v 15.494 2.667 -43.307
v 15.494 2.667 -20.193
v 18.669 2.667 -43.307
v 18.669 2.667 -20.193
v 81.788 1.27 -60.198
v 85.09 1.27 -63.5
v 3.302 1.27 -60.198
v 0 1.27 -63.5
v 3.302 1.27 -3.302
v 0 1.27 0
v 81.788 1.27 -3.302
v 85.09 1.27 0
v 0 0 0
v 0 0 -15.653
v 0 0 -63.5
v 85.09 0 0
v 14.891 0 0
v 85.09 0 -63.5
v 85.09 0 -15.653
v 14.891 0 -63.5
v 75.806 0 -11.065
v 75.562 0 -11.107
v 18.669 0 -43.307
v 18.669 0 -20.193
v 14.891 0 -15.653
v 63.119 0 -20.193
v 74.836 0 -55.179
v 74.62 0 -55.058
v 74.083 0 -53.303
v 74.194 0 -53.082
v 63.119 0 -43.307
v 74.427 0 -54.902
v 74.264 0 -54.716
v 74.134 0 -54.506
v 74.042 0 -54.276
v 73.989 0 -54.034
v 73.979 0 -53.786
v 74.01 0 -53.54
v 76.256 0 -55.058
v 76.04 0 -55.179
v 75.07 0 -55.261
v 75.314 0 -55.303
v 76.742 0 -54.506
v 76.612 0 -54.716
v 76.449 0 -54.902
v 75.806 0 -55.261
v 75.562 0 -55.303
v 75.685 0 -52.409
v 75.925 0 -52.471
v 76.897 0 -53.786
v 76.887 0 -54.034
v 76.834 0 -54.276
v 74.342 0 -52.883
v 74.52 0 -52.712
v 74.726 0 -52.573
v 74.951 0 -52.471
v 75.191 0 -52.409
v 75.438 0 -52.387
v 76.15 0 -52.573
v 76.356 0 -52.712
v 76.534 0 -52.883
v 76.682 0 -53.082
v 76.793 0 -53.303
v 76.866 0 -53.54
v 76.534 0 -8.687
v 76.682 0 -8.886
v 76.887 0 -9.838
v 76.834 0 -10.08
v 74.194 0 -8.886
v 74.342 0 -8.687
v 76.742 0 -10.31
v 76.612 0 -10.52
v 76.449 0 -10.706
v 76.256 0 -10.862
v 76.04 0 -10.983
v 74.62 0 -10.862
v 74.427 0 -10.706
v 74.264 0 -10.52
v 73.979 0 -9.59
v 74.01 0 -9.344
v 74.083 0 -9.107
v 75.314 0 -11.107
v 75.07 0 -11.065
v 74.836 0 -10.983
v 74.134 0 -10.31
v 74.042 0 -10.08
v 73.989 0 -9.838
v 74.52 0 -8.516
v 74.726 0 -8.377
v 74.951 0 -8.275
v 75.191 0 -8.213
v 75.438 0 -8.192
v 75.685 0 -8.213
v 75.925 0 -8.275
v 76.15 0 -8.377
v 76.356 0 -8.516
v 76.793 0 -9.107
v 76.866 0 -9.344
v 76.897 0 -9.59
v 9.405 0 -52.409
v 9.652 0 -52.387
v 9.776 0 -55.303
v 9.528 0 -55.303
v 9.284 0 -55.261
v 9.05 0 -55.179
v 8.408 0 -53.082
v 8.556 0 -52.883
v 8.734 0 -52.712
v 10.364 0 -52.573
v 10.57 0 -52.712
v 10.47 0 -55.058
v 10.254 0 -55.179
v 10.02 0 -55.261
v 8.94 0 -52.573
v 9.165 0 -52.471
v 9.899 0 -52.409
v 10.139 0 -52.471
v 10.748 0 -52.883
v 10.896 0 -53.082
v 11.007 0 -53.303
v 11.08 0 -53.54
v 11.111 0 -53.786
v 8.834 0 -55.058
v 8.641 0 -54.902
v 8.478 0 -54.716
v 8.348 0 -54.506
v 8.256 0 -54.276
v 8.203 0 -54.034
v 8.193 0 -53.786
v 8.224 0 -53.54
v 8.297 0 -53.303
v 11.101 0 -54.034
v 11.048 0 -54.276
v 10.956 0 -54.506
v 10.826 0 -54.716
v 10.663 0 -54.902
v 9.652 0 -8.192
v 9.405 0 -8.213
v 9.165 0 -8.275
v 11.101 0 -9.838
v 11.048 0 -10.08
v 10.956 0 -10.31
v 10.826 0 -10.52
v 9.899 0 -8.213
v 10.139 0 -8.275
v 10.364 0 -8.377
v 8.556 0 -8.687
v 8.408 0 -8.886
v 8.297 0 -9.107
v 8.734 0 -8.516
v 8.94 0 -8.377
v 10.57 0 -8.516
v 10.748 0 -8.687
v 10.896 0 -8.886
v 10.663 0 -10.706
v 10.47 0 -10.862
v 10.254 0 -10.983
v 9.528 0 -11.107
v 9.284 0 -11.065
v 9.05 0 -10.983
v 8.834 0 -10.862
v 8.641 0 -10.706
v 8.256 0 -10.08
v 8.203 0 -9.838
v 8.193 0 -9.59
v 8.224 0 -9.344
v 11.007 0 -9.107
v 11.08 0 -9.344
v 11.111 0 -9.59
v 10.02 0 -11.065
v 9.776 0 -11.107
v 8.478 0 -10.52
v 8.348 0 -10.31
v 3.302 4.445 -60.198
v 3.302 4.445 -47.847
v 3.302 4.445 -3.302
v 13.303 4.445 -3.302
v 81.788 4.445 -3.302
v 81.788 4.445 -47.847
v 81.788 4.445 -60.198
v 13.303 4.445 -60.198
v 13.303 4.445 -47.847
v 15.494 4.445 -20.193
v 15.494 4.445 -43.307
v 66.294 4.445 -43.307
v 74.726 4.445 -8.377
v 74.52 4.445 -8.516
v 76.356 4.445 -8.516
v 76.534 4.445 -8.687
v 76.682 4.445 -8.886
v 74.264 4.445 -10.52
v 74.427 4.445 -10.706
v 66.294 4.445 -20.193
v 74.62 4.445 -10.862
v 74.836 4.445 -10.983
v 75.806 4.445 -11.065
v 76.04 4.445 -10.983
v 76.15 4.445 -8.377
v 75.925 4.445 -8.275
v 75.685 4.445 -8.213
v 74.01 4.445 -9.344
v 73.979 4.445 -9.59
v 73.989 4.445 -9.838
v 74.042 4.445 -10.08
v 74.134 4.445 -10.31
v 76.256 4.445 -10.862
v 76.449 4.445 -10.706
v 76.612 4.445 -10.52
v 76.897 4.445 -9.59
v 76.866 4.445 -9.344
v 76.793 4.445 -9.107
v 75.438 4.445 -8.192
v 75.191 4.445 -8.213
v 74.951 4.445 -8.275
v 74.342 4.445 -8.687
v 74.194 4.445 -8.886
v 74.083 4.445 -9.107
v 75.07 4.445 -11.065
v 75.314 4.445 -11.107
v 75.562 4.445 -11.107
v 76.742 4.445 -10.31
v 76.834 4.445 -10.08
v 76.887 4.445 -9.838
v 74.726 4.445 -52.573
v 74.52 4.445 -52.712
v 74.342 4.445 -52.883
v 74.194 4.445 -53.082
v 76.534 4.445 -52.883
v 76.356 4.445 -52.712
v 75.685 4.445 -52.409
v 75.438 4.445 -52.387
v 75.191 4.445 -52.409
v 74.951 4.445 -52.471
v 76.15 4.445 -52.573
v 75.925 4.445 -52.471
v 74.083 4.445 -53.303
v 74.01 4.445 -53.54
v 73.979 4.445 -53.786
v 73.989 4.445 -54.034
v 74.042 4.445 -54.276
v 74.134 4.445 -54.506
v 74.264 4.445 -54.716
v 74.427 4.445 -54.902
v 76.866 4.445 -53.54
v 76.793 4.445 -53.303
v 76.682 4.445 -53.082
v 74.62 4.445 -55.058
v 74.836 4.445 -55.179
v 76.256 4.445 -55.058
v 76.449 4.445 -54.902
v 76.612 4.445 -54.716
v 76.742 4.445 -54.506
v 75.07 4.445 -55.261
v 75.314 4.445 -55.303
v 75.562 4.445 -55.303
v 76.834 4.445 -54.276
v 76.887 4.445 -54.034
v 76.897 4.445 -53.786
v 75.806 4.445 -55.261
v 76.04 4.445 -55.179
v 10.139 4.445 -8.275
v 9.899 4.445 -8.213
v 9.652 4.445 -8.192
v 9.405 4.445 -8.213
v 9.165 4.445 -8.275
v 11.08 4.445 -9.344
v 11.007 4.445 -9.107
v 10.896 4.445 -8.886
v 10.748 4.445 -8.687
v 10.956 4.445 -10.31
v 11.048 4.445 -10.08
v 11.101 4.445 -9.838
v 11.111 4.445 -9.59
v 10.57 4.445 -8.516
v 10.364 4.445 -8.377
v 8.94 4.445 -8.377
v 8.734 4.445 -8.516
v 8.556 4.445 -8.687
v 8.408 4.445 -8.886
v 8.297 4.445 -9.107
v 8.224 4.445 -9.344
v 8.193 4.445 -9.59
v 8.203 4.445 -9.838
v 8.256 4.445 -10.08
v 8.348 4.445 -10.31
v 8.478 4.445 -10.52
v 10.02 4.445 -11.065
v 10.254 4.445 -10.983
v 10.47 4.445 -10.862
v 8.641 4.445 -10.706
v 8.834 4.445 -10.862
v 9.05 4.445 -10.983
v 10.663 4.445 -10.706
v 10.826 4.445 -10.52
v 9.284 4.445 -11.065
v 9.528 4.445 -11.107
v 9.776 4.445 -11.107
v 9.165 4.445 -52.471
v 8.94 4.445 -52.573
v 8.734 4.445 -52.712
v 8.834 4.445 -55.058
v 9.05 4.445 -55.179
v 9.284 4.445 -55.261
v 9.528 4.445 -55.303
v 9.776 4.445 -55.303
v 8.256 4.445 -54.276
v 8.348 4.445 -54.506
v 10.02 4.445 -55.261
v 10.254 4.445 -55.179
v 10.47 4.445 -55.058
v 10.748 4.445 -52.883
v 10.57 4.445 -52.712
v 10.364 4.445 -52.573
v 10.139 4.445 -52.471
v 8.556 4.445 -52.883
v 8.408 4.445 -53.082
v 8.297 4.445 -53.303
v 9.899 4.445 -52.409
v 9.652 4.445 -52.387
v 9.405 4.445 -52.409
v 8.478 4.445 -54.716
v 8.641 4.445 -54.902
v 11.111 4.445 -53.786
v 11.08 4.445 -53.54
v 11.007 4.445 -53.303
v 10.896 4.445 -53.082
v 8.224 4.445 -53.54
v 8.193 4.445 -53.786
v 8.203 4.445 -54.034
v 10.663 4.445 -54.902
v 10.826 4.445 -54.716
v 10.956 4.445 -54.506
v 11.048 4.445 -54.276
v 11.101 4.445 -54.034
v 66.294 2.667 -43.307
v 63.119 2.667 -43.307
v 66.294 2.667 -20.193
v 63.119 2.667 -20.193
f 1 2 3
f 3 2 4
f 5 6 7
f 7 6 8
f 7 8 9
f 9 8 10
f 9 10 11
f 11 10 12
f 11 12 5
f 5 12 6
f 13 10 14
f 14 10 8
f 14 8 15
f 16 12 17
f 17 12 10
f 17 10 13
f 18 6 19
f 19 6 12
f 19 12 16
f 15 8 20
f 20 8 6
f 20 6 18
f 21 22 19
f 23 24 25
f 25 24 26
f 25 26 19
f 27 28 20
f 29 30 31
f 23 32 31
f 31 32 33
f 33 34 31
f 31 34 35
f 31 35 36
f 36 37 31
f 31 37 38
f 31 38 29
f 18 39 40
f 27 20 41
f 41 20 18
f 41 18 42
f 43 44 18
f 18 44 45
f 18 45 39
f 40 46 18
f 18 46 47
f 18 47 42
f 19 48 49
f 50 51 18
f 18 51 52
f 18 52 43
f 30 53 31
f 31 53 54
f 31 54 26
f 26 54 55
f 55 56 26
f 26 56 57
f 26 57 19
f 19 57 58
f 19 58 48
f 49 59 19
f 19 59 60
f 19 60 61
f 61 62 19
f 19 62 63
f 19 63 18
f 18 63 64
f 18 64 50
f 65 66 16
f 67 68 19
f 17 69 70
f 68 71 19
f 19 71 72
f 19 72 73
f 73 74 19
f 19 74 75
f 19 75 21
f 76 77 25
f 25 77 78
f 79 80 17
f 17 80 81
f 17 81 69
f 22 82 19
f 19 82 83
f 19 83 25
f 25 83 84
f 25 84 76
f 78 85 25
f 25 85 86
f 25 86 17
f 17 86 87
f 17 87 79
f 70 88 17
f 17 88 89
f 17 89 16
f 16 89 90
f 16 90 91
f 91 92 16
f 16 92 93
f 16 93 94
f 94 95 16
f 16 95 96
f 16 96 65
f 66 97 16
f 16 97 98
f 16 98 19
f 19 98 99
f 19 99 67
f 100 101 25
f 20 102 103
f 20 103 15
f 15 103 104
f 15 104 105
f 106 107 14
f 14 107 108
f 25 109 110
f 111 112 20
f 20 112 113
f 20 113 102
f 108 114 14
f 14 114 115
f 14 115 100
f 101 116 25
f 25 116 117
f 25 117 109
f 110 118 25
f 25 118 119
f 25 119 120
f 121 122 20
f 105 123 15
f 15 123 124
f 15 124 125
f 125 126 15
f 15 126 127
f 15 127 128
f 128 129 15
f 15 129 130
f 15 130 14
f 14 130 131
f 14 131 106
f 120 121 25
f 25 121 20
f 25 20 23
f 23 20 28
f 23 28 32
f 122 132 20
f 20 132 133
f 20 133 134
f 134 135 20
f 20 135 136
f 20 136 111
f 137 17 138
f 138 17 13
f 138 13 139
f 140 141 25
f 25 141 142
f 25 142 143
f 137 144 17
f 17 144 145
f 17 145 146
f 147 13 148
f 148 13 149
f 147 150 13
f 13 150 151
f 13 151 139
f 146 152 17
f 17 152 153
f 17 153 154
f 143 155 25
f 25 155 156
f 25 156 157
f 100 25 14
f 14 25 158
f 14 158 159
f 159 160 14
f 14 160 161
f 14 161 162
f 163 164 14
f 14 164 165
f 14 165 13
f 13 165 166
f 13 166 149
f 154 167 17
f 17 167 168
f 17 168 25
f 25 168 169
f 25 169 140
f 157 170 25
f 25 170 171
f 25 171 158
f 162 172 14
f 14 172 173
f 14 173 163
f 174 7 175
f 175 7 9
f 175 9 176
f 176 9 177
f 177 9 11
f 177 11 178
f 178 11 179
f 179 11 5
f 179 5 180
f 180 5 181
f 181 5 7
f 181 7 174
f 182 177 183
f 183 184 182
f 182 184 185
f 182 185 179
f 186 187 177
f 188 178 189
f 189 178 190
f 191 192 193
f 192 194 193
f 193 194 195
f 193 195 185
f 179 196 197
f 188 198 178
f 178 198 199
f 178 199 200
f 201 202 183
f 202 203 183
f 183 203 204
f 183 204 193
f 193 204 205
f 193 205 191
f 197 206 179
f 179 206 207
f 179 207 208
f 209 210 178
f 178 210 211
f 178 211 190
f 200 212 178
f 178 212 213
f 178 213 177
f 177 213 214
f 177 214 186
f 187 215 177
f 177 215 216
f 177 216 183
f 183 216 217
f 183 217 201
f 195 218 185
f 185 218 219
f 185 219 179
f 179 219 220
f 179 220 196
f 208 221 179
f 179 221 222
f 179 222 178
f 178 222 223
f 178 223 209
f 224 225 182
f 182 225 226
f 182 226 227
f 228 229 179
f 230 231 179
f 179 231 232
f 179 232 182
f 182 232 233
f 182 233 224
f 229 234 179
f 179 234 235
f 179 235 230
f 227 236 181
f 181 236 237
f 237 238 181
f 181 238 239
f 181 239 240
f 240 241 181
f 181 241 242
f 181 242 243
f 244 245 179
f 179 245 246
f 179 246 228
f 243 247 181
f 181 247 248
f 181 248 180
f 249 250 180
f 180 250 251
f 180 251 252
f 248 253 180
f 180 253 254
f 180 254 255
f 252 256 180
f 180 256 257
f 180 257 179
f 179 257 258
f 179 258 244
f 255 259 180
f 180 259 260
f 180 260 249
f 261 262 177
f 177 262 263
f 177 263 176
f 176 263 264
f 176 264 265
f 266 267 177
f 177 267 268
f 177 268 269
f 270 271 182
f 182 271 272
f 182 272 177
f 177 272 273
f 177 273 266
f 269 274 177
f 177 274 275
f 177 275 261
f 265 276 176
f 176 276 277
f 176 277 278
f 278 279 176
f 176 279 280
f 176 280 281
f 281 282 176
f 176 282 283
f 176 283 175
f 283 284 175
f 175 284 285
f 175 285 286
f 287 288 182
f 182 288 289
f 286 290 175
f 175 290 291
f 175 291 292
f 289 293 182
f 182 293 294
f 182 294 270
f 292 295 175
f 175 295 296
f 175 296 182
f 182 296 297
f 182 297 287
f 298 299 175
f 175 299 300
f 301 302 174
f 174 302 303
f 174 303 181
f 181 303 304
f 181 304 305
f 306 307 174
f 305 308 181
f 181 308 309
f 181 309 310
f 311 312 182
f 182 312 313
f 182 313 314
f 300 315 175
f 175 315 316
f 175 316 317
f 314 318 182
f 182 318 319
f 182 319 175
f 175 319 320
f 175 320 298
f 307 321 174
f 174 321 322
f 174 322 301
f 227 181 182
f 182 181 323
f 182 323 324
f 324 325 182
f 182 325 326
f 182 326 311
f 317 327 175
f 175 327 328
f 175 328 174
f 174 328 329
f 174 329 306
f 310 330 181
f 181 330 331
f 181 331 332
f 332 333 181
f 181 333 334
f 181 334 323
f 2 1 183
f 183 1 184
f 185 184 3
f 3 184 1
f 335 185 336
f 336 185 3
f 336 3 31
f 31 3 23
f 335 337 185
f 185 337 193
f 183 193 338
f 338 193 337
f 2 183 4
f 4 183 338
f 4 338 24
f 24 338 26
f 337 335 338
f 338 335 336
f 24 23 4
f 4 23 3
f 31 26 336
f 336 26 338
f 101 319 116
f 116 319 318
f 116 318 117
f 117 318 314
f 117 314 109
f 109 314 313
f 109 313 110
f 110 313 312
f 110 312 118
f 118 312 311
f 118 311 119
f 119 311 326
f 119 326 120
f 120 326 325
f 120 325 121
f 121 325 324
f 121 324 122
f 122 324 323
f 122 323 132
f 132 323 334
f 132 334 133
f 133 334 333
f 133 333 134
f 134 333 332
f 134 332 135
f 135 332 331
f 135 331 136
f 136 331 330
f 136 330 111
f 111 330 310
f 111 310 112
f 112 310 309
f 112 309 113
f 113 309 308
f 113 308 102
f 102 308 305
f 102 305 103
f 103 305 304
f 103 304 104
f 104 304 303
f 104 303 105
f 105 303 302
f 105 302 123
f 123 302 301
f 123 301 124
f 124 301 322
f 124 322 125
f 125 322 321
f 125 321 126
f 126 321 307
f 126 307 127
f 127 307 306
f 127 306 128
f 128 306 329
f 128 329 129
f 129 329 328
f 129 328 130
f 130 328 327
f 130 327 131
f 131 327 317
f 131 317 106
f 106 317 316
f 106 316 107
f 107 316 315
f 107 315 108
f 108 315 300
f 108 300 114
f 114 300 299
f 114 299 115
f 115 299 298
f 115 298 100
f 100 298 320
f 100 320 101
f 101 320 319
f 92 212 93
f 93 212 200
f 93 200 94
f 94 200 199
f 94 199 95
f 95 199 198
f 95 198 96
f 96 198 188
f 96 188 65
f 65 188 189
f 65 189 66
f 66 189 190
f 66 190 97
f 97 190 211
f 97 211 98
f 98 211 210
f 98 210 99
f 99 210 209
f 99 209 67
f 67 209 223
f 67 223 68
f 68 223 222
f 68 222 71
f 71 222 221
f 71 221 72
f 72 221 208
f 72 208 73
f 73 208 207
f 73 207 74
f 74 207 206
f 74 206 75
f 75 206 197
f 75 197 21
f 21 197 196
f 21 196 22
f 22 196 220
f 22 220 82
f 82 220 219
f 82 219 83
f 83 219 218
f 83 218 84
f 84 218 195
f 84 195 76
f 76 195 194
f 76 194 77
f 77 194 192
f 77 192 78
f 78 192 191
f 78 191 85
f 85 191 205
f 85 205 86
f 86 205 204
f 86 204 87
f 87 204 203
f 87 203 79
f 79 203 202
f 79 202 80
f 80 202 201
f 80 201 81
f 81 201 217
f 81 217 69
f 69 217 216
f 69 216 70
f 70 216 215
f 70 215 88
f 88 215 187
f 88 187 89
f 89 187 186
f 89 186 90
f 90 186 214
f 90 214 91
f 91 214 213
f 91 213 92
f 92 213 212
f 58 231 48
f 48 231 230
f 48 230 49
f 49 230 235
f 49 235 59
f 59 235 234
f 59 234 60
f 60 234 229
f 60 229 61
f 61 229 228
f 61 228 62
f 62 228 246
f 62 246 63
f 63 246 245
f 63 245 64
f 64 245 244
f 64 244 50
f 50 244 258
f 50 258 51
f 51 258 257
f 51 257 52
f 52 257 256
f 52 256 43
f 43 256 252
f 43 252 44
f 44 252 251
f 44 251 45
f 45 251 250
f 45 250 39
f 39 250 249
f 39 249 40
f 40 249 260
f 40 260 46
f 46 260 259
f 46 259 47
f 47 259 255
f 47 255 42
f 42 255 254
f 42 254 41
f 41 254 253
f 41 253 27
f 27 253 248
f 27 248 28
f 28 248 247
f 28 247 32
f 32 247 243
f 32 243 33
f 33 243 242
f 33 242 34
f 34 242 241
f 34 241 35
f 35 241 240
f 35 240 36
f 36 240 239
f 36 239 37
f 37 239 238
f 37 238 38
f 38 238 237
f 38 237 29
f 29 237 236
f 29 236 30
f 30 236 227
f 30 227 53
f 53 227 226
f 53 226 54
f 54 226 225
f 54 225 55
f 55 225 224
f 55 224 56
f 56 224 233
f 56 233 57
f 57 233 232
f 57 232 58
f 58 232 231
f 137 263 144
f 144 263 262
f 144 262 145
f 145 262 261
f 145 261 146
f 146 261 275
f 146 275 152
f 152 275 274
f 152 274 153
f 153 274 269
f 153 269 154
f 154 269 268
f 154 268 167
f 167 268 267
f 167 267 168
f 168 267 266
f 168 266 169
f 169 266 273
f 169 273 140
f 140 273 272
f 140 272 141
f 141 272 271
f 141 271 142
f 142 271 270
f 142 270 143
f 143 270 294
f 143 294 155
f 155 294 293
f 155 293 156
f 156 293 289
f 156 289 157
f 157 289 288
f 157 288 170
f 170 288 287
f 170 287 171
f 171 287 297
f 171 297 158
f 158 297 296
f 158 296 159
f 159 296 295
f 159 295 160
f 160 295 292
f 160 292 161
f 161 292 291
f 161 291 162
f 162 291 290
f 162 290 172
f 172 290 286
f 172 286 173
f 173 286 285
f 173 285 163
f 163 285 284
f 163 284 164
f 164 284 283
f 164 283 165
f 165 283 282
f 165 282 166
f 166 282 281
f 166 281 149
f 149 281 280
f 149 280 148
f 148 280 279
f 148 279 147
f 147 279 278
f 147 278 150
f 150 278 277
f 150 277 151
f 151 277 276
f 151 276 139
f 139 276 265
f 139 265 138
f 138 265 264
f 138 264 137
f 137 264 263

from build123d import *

# Parameters (mm, degrees)
SKETCH2_W           = 85.09
SKETCH2_H           = 63.5
BOSS_EXTRUDE1_DEPTH = 1.27
SKETCH3_W           = 78.486
SKETCH3_H           = 56.896
BOSS_EXTRUDE2_DEPTH = 3.175
SKETCH4_W           = 50.8
SKETCH4_H           = 23.114
CUT_EXTRUDE1_DEPTH  = 1.778
SKETCH5_W           = 44.45
SKETCH5_H           = 23.114
CUT_EXTRUDE2_DEPTH  = 3.667
SKETCH6_R           = 1.4605
CUT_EXTRUDE3_DEPTH  = 5.445


with BuildPart() as part:
    # Sketch2 → Boss-Extrude1 (new body)
    with BuildSketch(Plane(origin=(0, 0, 0), x_dir=(1, 0, 0), z_dir=(0, 1, 0))):
        with Locations((42.545, 31.75)):
            Rectangle(SKETCH2_W, SKETCH2_H)
    extrude(amount=BOSS_EXTRUDE1_DEPTH)

    # Sketch3 → Boss-Extrude2 (add)
    with BuildSketch(Plane(origin=(0, 1.27, 0), x_dir=(1, 0, 0), z_dir=(0, 1, 0))):
        with Locations((42.545, 31.75)):
            Rectangle(SKETCH3_W, SKETCH3_H)
    extrude(amount=BOSS_EXTRUDE2_DEPTH)

    # Sketch4 → Cut-Extrude1 (cut)
    with BuildSketch(Plane(origin=(0, 4.445, 0), x_dir=(1, 0, 0), z_dir=(0, 1, 0))):
        with Locations((40.894, 31.75)):
            Rectangle(SKETCH4_W, SKETCH4_H)
    extrude(amount=-CUT_EXTRUDE1_DEPTH, mode=Mode.SUBTRACT)

    # Sketch5 → Cut-Extrude2 (cut, through all)
    with BuildSketch(Plane(origin=(0, 2.667, 0), x_dir=(1, 0, 0), z_dir=(0, 1, 0))):
        with Locations((40.894, 31.75)):
            Rectangle(SKETCH5_W, SKETCH5_H)
    extrude(amount=-CUT_EXTRUDE2_DEPTH, mode=Mode.SUBTRACT)

    # Sketch6 → Cut-Extrude3 (cut, through all)
    with BuildSketch(Plane(origin=(0, 4.445, 0), x_dir=(1, 0, 0), z_dir=(0, 1, 0))):
        with Locations((9.652, 53.848)):
            Circle(SKETCH6_R)
        with Locations((9.652, 9.652)):
            Circle(SKETCH6_R)
        with Locations((75.438, 53.848)):
            Circle(SKETCH6_R)
        with Locations((75.438, 9.652)):
            Circle(SKETCH6_R)
    extrude(amount=-CUT_EXTRUDE3_DEPTH, mode=Mode.SUBTRACT)


solid = part.part
